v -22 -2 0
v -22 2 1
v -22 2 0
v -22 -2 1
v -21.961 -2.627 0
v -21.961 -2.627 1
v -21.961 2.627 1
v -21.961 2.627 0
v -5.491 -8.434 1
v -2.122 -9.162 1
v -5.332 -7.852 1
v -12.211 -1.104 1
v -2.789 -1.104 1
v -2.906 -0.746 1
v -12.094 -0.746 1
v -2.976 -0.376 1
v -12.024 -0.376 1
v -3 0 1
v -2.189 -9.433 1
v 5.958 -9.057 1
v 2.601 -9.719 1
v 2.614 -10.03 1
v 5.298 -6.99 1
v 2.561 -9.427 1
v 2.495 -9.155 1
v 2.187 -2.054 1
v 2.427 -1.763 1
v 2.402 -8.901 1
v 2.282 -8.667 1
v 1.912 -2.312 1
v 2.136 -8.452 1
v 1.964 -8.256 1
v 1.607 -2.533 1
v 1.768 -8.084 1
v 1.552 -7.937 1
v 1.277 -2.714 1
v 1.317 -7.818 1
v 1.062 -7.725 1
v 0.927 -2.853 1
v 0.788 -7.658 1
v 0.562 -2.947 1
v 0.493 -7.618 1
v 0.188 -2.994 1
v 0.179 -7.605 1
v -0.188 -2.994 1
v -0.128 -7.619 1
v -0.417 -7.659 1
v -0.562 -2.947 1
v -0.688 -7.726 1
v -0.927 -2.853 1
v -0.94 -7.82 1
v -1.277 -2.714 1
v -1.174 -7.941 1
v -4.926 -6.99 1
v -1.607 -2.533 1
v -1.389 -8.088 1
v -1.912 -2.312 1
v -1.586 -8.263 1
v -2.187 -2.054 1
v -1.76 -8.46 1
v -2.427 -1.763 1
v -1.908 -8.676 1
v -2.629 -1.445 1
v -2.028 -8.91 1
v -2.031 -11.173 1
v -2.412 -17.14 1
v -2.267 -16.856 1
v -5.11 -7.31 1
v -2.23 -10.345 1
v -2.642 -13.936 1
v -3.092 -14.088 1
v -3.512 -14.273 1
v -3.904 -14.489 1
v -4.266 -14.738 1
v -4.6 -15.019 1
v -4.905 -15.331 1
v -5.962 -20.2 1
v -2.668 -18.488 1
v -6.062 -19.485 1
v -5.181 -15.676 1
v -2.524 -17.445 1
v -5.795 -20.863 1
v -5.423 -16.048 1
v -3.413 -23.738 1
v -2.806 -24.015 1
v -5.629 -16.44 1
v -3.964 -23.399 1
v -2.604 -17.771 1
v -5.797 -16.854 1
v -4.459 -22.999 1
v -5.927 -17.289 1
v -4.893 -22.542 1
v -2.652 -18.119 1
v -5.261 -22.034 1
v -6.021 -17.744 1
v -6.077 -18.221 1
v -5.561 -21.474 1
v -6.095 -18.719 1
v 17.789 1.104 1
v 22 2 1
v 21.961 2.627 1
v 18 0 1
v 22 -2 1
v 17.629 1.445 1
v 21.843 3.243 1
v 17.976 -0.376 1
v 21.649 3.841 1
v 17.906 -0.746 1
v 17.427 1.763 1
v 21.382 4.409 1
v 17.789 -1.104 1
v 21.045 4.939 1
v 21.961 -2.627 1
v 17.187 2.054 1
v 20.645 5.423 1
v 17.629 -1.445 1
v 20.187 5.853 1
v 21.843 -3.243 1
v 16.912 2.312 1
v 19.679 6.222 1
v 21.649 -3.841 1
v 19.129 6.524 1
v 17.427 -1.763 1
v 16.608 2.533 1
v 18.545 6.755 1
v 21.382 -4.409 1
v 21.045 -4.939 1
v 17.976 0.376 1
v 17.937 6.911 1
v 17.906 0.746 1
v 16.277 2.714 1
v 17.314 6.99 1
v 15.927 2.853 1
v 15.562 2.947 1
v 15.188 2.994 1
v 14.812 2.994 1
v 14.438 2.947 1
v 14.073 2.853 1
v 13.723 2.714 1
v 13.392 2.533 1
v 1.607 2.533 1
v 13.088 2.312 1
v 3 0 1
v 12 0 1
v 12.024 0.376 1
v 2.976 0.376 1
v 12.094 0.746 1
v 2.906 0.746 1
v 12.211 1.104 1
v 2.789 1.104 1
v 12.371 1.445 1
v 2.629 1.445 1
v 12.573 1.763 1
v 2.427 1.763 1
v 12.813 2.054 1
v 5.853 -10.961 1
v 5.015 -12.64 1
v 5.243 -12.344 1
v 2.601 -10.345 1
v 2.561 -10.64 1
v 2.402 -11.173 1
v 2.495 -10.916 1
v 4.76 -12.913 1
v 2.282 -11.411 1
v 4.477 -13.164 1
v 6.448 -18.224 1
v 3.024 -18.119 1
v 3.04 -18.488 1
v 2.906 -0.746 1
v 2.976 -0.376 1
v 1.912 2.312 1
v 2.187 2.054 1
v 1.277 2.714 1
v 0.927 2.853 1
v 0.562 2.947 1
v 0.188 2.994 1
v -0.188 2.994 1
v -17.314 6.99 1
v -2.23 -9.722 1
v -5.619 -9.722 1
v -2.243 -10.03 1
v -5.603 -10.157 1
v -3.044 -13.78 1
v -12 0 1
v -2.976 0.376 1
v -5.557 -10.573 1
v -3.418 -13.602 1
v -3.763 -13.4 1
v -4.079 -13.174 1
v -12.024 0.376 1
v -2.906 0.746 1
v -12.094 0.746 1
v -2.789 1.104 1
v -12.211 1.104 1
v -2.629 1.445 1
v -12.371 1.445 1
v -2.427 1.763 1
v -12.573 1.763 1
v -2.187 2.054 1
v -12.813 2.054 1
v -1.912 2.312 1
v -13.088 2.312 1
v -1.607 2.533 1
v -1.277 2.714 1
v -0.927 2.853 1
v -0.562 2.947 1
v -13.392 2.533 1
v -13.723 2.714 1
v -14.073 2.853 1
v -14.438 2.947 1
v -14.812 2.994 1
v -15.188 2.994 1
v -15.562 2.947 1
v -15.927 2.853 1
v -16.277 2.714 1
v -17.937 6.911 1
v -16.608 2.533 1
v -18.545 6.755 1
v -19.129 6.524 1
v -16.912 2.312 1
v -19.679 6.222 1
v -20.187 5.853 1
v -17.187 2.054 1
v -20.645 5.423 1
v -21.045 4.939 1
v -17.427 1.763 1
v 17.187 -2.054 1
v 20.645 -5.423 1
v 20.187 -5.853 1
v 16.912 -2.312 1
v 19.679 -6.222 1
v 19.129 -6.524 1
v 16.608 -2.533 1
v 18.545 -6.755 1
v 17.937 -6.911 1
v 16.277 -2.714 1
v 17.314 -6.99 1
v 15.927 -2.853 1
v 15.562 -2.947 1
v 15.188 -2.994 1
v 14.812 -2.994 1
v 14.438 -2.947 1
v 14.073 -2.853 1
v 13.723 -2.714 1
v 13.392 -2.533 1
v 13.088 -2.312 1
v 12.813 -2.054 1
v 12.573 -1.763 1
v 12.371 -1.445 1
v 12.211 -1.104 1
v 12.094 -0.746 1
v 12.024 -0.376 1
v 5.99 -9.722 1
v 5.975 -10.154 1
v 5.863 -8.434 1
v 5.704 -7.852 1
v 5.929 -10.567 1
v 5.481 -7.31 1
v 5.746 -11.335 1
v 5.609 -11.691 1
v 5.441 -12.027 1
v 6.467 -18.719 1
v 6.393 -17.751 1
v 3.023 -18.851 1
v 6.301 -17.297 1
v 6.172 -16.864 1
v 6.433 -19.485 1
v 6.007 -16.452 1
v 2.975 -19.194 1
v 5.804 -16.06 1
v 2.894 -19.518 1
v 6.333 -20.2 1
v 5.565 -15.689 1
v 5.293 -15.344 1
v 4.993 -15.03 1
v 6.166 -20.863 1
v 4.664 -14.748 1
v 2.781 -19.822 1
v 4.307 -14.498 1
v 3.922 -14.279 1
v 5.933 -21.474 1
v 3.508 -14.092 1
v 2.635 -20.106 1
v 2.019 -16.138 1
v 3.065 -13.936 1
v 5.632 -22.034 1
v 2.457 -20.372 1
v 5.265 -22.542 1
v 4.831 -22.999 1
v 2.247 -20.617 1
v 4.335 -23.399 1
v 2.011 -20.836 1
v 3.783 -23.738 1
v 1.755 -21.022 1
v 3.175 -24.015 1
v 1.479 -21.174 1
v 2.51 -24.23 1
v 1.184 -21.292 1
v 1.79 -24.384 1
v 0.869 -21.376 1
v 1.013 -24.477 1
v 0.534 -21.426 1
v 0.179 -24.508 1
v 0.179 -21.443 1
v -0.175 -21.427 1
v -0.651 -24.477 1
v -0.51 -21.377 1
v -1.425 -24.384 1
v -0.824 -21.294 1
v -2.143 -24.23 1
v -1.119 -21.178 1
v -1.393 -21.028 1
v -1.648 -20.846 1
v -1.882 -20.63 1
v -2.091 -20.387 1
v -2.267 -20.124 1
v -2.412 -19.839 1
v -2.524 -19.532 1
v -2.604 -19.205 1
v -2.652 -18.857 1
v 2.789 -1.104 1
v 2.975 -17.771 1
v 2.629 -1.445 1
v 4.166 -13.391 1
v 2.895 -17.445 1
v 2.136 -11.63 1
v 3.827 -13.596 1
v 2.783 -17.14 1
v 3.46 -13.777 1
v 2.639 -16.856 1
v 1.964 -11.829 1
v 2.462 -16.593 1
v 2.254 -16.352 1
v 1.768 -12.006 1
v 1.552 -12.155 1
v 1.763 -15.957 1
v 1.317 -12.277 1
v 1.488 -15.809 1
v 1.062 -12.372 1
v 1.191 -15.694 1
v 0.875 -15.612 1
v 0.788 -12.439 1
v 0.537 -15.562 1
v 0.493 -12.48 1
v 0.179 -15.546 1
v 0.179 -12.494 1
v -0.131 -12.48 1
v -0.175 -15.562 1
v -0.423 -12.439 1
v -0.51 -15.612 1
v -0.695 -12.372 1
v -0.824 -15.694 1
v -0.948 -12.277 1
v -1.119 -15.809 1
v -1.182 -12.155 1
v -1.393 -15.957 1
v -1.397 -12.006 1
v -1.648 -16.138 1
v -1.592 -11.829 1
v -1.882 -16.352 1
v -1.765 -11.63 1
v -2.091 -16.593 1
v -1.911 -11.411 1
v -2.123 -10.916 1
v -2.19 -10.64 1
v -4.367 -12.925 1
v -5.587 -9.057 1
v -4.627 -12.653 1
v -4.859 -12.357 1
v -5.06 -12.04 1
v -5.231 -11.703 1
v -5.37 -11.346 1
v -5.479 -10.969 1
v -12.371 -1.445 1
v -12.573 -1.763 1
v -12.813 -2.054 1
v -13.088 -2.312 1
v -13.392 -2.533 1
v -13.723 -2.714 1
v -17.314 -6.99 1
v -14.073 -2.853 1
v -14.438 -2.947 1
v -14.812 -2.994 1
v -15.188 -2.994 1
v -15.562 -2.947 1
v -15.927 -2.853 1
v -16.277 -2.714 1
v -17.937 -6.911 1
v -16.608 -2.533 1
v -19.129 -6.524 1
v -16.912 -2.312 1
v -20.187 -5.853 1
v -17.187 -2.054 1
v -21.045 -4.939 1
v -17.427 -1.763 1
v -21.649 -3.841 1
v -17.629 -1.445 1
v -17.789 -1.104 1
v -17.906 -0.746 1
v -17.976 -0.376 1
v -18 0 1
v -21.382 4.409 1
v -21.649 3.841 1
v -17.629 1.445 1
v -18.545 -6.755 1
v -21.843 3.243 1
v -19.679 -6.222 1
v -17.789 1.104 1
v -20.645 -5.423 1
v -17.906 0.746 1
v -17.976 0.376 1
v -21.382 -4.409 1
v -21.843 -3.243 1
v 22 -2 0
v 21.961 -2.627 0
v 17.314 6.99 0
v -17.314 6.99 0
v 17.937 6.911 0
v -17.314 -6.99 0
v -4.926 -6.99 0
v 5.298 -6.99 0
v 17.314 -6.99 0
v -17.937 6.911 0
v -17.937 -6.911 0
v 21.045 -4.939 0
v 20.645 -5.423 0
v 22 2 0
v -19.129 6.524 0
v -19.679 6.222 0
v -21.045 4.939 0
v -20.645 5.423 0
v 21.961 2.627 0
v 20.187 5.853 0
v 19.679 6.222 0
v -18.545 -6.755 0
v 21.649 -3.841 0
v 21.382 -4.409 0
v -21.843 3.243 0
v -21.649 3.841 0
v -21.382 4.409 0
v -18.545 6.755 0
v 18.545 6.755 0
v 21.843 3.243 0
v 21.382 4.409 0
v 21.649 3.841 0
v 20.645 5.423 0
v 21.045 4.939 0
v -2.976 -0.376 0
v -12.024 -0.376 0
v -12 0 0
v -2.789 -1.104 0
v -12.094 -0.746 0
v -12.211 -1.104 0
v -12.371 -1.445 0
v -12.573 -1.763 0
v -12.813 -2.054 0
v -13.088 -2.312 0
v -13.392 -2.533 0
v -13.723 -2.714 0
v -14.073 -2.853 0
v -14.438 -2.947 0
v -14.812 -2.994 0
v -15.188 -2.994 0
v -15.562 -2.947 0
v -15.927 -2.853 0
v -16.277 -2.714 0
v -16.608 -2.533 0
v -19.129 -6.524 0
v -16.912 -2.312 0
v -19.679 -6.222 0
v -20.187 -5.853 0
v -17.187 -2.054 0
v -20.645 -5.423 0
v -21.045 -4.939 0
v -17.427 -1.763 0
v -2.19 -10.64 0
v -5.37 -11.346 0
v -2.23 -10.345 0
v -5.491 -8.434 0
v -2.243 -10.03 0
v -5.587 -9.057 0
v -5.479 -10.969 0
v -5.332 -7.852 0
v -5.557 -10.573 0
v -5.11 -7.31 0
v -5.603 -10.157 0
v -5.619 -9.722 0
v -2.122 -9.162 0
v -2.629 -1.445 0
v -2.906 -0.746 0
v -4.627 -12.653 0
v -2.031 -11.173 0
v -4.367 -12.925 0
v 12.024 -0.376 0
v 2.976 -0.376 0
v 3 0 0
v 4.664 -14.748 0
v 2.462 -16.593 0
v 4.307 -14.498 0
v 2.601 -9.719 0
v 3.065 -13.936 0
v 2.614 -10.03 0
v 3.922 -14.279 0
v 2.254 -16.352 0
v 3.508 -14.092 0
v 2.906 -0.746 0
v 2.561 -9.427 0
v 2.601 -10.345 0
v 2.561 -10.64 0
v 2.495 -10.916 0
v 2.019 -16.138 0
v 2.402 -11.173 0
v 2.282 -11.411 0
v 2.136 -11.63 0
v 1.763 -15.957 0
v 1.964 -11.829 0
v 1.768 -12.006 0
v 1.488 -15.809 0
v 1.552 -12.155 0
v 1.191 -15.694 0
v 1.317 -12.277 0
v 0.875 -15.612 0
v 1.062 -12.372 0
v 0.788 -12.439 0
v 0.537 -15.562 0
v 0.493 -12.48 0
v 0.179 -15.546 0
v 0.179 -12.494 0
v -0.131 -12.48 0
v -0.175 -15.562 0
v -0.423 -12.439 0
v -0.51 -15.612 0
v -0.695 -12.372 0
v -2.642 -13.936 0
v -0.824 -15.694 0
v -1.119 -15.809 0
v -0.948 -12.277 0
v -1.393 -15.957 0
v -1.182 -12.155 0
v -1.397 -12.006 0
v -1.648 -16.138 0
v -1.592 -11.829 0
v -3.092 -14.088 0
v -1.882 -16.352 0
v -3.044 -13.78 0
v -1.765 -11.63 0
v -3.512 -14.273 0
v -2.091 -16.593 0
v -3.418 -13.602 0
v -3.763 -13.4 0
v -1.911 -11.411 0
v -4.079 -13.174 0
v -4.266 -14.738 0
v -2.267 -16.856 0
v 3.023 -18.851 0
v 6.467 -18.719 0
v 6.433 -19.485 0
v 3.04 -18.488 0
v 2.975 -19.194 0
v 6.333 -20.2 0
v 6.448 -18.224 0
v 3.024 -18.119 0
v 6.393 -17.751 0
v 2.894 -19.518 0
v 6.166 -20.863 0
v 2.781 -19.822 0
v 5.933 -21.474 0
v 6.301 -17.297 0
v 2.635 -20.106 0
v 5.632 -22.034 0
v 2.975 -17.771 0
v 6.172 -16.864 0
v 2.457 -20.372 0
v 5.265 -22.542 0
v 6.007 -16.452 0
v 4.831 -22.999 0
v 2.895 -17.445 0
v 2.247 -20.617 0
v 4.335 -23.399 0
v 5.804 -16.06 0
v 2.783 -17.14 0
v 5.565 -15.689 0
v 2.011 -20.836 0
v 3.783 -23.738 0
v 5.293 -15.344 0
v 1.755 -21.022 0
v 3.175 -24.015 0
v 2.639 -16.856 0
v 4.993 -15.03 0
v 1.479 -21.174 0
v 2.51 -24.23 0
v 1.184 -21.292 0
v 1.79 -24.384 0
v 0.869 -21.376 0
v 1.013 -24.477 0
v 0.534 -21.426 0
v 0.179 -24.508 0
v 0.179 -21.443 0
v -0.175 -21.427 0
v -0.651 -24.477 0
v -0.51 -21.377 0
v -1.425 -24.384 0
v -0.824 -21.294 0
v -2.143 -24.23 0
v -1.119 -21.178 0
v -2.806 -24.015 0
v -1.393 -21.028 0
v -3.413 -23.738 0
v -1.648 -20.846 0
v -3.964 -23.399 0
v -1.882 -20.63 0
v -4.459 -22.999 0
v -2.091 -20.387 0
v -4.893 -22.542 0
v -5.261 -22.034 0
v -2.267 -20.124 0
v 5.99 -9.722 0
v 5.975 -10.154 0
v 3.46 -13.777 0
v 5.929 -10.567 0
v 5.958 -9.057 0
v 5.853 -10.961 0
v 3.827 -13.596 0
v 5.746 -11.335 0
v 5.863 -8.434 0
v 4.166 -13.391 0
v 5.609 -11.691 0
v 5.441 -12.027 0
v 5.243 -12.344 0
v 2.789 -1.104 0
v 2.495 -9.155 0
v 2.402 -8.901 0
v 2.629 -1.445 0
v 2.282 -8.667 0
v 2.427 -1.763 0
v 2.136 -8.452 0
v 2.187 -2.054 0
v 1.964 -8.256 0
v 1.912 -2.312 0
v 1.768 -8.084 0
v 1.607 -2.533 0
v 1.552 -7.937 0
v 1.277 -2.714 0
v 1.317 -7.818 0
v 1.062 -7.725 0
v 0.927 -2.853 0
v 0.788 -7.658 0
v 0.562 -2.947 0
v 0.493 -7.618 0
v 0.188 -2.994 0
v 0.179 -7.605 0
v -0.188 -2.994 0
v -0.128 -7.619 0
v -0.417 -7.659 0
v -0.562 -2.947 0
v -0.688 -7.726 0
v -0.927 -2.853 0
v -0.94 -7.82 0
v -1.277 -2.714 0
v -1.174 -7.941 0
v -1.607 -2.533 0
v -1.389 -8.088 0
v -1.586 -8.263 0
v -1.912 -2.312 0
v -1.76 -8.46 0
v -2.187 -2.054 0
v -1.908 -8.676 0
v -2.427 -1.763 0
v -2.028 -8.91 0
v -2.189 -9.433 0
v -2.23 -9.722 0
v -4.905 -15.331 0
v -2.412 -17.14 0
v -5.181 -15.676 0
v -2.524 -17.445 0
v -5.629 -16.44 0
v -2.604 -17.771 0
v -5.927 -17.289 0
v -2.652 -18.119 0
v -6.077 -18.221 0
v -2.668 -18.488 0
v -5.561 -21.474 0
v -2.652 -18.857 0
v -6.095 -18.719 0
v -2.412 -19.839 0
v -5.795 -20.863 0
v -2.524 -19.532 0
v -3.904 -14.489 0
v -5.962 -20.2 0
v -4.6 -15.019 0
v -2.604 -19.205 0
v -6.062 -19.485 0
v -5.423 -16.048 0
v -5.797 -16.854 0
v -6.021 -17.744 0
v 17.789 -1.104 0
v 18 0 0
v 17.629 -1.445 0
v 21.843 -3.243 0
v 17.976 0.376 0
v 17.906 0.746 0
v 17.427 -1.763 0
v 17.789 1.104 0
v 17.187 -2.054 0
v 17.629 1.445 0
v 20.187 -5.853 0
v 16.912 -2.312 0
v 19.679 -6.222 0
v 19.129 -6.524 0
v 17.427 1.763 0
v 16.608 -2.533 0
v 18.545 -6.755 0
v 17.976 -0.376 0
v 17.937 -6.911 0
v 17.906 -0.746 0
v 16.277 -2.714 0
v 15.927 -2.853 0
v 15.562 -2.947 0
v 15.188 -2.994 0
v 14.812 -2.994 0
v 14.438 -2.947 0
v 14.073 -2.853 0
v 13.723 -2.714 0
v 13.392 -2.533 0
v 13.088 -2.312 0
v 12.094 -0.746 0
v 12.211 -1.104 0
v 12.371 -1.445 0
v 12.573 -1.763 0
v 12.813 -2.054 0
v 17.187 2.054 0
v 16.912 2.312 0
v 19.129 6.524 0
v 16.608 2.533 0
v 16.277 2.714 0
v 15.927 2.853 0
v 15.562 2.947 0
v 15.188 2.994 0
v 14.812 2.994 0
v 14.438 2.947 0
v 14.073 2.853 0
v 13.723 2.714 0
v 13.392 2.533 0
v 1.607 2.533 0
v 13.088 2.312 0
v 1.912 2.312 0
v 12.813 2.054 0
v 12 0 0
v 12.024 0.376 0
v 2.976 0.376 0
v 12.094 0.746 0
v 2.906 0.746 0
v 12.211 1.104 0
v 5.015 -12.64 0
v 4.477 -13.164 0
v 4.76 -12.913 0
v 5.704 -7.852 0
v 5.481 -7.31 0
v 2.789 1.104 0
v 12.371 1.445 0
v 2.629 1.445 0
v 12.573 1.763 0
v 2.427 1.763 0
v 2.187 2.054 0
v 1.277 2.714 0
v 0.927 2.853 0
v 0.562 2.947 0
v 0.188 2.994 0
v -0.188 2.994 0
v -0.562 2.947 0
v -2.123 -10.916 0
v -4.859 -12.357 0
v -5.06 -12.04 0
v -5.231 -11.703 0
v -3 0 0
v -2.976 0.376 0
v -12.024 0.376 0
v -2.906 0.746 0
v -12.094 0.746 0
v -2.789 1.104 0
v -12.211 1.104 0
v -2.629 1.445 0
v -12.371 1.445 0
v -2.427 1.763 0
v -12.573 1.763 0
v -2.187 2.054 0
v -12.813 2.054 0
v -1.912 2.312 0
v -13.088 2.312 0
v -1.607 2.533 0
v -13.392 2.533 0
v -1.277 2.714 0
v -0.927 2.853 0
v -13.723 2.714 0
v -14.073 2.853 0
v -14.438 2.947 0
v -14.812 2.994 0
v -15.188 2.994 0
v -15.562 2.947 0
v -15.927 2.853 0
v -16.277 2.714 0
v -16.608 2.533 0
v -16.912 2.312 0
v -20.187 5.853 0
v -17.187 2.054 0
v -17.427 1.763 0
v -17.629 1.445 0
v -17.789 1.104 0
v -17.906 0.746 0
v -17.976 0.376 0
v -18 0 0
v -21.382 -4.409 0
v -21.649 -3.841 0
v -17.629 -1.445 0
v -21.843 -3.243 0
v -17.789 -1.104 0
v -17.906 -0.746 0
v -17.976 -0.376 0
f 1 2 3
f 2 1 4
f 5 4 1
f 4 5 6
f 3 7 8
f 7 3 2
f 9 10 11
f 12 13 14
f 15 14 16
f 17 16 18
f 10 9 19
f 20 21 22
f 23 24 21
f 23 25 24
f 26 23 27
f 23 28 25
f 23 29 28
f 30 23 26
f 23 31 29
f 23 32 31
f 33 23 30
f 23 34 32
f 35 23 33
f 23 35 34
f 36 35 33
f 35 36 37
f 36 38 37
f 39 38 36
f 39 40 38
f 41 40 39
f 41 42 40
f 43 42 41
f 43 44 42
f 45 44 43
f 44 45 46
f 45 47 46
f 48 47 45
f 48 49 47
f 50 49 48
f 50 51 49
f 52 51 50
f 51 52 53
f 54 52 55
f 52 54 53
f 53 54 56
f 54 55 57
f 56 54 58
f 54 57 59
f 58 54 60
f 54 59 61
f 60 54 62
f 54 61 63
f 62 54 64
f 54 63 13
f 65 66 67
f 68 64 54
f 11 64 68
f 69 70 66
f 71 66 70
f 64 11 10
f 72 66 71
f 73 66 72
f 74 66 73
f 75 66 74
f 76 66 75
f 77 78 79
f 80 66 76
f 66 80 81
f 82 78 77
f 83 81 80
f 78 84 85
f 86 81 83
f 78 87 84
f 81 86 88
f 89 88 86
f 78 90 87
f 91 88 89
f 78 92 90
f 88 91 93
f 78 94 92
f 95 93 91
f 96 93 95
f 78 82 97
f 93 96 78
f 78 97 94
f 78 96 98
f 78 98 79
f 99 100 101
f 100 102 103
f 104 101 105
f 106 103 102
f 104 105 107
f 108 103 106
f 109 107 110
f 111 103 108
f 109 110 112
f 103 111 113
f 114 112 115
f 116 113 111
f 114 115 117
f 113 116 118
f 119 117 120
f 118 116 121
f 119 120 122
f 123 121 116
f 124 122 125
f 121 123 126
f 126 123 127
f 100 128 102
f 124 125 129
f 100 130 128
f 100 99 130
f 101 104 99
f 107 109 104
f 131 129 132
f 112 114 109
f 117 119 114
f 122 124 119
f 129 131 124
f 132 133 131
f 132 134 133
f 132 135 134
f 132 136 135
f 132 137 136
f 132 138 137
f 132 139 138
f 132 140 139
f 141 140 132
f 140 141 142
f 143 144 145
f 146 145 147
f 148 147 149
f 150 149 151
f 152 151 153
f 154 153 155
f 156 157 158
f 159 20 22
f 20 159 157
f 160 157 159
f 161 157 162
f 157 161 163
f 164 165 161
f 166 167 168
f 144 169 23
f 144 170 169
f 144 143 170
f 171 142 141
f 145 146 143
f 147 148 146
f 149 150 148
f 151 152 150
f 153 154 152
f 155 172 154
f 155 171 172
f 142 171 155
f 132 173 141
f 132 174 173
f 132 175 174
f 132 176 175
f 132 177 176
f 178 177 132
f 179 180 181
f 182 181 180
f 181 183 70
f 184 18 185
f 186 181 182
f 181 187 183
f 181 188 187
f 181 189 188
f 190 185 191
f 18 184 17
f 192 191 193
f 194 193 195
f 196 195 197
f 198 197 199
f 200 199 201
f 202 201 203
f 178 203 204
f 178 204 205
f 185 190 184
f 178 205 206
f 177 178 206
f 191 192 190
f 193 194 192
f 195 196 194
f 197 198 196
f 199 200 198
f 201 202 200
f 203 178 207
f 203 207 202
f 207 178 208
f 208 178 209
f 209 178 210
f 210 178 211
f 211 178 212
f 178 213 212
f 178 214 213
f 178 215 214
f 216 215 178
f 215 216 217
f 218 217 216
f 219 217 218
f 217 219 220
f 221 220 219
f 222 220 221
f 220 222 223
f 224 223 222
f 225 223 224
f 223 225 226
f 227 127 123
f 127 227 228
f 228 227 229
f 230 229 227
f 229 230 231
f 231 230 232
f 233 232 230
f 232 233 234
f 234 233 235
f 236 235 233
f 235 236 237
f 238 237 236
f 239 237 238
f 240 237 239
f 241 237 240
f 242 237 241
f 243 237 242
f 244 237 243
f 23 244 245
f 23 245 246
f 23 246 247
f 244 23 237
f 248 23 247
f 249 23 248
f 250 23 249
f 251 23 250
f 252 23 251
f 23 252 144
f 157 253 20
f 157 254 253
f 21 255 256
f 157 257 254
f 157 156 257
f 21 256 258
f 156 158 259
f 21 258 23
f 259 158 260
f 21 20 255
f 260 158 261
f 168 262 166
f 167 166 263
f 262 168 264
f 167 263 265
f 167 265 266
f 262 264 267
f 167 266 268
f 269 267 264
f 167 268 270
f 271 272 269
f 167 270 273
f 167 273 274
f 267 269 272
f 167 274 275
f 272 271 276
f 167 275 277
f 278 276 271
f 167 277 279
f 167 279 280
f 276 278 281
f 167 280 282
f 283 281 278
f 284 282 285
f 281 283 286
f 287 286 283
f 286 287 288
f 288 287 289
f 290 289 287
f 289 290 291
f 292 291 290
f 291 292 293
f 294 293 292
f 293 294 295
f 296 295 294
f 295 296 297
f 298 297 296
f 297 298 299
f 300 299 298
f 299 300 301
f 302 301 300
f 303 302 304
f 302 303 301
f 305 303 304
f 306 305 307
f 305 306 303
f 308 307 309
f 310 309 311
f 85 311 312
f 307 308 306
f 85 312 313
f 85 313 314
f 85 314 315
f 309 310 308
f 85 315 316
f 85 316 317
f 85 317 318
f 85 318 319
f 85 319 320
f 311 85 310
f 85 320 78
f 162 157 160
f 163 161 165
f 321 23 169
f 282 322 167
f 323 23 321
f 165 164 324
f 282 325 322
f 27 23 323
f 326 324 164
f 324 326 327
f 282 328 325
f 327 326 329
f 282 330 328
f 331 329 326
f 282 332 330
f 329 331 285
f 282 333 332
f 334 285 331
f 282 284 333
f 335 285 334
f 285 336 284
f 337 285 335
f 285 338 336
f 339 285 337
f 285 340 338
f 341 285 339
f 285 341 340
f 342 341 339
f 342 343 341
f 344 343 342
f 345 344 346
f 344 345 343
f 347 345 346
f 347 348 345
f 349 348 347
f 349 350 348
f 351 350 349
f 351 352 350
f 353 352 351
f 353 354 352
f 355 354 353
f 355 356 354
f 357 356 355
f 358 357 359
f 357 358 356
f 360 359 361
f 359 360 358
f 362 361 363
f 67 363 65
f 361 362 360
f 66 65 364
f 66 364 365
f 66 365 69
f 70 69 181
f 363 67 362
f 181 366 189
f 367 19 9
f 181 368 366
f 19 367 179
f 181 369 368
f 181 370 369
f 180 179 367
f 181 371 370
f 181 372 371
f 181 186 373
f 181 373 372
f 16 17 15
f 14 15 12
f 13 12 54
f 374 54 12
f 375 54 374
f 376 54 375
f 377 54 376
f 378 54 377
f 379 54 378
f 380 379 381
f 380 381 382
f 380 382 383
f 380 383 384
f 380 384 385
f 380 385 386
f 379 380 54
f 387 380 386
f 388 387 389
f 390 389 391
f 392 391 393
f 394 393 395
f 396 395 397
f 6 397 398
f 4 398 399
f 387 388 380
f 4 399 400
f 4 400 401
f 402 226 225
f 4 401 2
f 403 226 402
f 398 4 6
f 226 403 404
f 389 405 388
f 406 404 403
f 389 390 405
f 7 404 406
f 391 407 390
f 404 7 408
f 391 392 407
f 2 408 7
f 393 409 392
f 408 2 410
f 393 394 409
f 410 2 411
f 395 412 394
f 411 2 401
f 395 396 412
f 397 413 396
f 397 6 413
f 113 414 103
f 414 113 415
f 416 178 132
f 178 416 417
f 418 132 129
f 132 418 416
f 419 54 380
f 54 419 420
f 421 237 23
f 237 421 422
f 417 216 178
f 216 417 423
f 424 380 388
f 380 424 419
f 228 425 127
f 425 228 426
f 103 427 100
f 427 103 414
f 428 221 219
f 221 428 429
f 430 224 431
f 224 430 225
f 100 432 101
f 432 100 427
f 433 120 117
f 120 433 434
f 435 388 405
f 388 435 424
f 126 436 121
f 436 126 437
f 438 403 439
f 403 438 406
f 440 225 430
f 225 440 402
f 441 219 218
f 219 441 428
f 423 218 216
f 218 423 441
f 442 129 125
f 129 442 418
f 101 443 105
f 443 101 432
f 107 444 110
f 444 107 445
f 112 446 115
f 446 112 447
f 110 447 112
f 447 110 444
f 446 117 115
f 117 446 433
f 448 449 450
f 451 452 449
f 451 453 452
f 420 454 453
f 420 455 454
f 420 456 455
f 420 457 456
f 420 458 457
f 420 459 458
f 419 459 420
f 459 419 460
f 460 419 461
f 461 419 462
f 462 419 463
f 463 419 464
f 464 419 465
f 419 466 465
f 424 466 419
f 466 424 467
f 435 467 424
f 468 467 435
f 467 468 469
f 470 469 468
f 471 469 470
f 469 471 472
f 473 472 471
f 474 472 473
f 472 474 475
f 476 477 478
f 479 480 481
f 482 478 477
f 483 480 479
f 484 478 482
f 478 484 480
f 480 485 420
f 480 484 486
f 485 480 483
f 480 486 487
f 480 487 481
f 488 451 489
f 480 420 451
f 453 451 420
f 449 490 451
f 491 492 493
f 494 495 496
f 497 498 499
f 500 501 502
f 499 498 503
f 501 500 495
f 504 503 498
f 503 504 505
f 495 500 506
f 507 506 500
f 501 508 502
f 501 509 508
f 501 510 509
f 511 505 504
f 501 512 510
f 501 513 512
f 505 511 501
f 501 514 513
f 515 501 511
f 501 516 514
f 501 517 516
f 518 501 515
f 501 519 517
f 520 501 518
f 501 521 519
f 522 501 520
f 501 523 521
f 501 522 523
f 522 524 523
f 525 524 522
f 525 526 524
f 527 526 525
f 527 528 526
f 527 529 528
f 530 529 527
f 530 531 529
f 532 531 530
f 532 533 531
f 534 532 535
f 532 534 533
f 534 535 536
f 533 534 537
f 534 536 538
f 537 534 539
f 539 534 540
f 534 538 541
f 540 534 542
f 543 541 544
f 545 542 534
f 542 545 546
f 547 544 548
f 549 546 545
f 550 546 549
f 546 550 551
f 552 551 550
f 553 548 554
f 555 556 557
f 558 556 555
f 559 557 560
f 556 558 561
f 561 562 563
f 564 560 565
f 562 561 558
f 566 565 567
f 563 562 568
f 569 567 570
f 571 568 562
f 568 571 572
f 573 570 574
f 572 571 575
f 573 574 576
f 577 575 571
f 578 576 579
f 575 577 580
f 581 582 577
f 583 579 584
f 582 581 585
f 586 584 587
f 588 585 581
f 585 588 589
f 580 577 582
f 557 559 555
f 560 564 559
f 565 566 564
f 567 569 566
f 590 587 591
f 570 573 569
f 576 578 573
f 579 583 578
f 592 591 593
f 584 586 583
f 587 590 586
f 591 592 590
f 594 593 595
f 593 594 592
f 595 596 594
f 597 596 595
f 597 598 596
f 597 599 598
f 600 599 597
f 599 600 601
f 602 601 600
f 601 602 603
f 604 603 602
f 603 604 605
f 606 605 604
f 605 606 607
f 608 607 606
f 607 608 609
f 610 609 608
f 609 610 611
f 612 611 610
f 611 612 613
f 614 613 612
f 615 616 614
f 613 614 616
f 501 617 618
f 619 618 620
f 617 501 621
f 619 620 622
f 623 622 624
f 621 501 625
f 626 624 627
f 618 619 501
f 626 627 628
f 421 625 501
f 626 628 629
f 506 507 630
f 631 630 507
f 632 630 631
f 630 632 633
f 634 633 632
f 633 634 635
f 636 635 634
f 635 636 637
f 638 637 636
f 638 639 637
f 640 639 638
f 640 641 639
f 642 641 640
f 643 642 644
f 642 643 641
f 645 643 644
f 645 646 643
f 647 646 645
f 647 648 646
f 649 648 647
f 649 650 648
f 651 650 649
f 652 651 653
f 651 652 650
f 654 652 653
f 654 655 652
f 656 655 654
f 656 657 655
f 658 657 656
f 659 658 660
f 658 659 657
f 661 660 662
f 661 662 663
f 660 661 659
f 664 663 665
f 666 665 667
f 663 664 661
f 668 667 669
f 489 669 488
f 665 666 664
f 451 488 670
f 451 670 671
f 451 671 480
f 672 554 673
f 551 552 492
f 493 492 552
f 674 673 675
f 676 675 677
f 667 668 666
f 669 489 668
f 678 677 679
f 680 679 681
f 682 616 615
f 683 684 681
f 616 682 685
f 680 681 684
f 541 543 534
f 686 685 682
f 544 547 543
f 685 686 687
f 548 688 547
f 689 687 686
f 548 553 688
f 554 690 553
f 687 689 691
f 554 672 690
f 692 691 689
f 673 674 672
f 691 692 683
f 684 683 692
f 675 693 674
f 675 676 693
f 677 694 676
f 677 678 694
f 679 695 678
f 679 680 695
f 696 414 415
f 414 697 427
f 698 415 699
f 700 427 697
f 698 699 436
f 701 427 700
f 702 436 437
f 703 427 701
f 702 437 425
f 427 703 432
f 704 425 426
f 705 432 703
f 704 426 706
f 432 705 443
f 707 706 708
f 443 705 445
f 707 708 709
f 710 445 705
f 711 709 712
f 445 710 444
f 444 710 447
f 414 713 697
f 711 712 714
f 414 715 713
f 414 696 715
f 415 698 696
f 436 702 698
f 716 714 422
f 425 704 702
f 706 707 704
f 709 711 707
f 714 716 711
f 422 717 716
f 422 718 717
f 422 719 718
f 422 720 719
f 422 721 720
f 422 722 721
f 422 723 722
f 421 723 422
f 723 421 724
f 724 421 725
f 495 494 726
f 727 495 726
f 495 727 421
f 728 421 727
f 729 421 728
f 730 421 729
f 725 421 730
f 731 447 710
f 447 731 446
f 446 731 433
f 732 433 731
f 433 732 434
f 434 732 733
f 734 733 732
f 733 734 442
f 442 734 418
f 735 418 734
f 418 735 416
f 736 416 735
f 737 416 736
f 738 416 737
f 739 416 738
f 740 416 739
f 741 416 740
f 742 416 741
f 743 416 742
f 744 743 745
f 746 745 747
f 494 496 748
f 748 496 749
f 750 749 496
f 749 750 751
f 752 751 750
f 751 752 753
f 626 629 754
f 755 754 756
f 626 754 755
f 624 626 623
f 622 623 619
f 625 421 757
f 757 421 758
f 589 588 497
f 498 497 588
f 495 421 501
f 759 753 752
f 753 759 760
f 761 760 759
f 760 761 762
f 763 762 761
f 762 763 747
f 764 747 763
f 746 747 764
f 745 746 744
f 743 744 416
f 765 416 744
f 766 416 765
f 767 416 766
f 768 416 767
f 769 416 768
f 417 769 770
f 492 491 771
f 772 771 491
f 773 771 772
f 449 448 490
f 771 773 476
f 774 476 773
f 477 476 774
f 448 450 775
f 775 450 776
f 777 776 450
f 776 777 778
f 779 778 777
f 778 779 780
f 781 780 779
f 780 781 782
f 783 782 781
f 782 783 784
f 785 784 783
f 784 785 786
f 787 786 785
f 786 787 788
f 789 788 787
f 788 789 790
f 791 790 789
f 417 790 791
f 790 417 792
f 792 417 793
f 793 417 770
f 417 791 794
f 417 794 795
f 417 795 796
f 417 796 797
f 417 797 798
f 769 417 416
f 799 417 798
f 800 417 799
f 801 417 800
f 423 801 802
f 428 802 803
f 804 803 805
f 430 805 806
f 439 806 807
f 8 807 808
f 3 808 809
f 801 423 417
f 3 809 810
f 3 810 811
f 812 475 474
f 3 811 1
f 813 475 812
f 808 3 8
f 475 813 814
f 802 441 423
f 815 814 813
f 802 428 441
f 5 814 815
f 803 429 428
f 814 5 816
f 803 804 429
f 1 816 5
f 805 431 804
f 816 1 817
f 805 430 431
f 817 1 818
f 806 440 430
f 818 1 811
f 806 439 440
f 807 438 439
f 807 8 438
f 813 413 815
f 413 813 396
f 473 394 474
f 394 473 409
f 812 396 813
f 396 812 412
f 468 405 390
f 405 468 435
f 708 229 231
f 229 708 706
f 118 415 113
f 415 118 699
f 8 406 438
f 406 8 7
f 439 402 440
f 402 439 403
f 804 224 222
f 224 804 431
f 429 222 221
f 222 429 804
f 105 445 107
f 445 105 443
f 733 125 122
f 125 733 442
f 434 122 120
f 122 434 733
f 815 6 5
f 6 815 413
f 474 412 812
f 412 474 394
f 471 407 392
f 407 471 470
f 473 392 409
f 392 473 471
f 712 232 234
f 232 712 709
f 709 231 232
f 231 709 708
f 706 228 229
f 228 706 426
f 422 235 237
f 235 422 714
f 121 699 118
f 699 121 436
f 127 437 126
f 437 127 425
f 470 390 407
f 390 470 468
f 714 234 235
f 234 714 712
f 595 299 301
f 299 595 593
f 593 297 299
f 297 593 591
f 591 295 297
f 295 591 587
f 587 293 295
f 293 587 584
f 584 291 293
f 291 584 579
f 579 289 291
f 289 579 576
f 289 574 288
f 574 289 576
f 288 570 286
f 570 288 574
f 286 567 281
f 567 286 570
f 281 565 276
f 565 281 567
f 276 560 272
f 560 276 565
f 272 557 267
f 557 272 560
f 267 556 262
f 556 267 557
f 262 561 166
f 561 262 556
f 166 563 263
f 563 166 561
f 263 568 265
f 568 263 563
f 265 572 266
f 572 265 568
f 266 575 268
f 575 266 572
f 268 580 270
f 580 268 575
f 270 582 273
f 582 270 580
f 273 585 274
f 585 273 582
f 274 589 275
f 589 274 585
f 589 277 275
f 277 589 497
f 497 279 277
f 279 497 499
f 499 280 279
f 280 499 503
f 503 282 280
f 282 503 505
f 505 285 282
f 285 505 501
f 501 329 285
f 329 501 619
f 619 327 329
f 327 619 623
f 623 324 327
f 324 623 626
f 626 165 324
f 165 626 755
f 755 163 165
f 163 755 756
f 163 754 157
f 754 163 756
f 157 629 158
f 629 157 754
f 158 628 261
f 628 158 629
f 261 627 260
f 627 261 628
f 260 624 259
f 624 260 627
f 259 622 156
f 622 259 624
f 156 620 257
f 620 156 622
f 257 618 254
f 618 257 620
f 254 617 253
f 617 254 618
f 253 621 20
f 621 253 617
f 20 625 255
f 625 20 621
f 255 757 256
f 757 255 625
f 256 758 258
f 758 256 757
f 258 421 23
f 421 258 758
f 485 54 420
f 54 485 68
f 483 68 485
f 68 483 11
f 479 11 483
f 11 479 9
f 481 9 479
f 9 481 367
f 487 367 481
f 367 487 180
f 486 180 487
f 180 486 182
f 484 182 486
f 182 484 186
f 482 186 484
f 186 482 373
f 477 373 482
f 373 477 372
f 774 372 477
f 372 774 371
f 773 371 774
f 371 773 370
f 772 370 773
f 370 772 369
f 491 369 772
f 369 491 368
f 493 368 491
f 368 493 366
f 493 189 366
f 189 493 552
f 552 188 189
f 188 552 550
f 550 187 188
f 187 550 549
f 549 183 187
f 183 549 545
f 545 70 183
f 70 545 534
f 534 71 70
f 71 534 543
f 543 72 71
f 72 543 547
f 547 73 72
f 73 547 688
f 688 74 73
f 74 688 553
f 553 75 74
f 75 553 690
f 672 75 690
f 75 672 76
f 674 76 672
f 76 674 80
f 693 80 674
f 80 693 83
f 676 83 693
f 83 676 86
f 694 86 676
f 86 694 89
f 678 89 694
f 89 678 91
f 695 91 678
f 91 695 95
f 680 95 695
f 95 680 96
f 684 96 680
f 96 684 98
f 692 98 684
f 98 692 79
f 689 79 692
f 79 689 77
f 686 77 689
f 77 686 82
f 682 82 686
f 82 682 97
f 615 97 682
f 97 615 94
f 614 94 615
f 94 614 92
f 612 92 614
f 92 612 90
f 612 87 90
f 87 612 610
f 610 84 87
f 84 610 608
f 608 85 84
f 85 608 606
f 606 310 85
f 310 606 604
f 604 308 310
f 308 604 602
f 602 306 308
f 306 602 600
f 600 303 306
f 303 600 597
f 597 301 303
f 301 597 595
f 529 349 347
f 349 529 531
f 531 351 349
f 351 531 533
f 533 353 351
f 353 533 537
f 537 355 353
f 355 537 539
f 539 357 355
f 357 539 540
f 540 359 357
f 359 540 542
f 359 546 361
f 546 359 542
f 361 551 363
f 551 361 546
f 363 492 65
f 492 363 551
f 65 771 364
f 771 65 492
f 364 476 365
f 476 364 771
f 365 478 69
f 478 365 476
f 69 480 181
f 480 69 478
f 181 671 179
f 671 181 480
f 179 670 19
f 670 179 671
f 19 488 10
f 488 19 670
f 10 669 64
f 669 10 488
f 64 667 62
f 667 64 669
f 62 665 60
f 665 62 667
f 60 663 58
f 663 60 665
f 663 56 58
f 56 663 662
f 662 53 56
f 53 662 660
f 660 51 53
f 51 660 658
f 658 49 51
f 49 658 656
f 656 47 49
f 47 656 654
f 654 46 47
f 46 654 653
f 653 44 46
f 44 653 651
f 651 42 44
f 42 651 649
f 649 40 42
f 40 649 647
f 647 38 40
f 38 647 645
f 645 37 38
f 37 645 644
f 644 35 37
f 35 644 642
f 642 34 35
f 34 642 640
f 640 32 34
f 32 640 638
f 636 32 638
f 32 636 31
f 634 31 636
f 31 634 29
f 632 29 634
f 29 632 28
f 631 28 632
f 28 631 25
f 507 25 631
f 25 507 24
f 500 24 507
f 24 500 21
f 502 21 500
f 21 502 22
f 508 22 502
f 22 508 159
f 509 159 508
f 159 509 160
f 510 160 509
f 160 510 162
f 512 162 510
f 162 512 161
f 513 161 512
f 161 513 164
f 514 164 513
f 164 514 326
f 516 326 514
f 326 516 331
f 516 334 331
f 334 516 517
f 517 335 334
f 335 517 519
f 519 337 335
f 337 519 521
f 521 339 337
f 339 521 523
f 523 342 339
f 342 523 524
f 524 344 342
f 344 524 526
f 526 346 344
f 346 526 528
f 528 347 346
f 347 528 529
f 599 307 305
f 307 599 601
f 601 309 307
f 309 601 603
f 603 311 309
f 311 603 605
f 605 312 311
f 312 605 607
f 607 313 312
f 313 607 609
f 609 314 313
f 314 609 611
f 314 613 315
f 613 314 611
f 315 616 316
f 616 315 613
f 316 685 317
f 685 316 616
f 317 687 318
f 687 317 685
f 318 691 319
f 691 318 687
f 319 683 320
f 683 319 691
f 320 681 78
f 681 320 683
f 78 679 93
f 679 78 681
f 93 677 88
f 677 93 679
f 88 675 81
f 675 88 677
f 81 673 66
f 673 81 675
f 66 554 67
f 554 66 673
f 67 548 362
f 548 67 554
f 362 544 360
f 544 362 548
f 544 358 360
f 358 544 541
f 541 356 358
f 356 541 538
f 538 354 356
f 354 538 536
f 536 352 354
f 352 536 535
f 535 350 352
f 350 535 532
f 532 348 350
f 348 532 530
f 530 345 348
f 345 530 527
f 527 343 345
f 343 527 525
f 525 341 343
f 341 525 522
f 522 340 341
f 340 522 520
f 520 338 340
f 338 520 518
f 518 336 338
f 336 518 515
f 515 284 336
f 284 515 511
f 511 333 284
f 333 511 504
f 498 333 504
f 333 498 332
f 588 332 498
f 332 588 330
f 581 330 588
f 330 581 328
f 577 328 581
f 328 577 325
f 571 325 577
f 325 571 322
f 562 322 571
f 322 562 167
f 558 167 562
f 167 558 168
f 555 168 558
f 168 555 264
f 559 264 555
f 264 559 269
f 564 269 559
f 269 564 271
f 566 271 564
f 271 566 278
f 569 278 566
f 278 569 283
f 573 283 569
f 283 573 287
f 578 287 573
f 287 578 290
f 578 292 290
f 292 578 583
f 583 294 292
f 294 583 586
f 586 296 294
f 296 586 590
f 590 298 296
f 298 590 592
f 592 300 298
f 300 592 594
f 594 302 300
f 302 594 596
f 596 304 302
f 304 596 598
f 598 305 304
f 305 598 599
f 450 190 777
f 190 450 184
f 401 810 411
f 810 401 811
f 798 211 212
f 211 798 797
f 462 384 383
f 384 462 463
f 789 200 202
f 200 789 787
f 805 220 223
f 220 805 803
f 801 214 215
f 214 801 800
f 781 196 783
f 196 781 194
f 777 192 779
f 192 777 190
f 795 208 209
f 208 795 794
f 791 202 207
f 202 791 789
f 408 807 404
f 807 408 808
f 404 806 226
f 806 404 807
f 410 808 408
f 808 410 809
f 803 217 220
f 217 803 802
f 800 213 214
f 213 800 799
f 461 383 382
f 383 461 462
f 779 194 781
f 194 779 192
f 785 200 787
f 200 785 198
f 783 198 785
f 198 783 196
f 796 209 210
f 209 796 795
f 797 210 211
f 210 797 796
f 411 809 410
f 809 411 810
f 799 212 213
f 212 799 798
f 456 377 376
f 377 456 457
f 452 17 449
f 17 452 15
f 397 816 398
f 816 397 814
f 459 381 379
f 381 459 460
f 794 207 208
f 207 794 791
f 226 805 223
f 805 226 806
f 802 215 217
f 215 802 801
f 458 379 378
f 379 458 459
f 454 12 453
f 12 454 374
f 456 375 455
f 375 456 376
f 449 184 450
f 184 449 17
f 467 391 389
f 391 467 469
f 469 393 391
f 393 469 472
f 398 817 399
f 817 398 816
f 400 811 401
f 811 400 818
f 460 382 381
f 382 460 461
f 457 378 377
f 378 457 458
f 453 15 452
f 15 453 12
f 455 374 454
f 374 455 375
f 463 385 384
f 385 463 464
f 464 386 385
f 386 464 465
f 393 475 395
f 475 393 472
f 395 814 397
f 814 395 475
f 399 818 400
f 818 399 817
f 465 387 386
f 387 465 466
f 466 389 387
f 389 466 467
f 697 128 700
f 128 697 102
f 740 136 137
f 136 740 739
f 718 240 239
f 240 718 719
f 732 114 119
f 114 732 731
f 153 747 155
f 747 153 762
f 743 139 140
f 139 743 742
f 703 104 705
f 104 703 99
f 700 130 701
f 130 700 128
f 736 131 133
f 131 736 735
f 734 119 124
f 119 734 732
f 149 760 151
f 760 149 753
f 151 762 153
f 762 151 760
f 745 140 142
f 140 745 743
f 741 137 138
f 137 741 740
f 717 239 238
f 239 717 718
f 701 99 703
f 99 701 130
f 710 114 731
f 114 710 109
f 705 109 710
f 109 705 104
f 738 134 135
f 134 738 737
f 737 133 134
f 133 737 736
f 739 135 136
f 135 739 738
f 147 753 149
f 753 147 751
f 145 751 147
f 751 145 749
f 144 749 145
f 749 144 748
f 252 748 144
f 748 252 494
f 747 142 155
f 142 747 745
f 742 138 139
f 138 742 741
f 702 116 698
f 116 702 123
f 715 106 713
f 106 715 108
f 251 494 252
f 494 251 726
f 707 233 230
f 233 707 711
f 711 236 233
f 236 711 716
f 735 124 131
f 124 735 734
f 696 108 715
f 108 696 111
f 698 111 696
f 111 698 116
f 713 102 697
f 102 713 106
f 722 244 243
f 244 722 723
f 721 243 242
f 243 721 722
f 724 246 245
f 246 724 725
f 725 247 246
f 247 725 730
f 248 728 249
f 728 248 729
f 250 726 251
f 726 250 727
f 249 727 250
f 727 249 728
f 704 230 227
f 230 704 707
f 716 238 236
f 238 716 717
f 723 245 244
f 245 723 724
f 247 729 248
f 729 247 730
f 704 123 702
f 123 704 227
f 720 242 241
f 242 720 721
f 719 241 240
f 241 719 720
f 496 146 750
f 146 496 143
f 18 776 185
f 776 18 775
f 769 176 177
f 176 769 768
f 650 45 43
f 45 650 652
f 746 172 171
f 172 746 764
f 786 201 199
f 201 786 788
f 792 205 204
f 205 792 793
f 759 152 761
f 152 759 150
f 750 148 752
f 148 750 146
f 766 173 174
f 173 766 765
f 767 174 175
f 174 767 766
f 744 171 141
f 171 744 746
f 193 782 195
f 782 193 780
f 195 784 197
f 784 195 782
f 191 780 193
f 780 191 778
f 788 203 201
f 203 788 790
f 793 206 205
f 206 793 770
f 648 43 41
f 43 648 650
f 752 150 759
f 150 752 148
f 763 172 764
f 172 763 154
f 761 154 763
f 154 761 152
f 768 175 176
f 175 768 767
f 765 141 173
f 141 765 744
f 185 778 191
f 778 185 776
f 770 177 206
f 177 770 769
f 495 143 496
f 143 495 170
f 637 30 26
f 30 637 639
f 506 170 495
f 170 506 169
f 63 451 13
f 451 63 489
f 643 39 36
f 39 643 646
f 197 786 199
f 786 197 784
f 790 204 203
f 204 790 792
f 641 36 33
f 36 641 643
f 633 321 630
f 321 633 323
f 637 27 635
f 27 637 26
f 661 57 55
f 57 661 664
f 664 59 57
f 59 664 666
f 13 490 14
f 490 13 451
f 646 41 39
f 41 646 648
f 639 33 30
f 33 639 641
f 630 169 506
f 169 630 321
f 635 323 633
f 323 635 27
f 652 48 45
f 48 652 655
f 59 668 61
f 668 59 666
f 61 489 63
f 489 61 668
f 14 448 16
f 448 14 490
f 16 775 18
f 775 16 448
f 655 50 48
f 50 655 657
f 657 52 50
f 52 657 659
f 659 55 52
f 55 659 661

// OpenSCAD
$fn = 50;


difference() {
	union() {
		translate(v = [0, 0, 0]) {
			rotate(a = [0, 0, 0]) {
				hull() {
					translate(v = [-17.0000000000, 2.0000000000, 0]) {
						rotate(a = [0, 0, 0]) {
							translate(v = [0, 0, 0]) {
								rotate(a = [0, 0, 0]) {
									cylinder(h = 1, r = 5);
								}
							}
						}
					}
					translate(v = [17.0000000000, 2.0000000000, 0]) {
						rotate(a = [0, 0, 0]) {
							translate(v = [0, 0, 0]) {
								rotate(a = [0, 0, 0]) {
									cylinder(h = 1, r = 5);
								}
							}
						}
					}
					translate(v = [-17.0000000000, -2.0000000000, 0]) {
						rotate(a = [0, 0, 0]) {
							translate(v = [0, 0, 0]) {
								rotate(a = [0, 0, 0]) {
									cylinder(h = 1, r = 5);
								}
							}
						}
					}
					translate(v = [17.0000000000, -2.0000000000, 0]) {
						rotate(a = [0, 0, 0]) {
							translate(v = [0, 0, 0]) {
								rotate(a = [0, 0, 0]) {
									cylinder(h = 1, r = 5);
								}
							}
						}
					}
				}
			}
		}
		translate(v = [0, -5, 0]) {
			rotate(a = [0, 0, 0]) {
				linear_extrude(height = 1) {
					text(font = "DejaVu Sans Mono:style=Bold", halign = "center", size = 19.0000000000, text = "8", valign = "top");
				}
			}
		}
	}
	union() {
		translate(v = [-15.0000000000, 0.0000000000, -125.0000000000]) {
			rotate(a = [0, 0, 0]) {
				cylinder(h = 250, r = 3.0000000000);
			}
		}
		translate(v = [15.0000000000, 0.0000000000, -125.0000000000]) {
			rotate(a = [0, 0, 0]) {
				cylinder(h = 250, r = 3.0000000000);
			}
		}
		translate(v = [15.0000000000, 0.0000000000, -125.0000000000]) {
			rotate(a = [0, 0, 0]) {
				cylinder(h = 250, r = 3.0000000000);
			}
		}
		translate(v = [0, 0, -125.0000000000]) {
			rotate(a = [0, 0, 0]) {
				cylinder(h = 250, r = 3.0000000000);
			}
		}
	}
}
